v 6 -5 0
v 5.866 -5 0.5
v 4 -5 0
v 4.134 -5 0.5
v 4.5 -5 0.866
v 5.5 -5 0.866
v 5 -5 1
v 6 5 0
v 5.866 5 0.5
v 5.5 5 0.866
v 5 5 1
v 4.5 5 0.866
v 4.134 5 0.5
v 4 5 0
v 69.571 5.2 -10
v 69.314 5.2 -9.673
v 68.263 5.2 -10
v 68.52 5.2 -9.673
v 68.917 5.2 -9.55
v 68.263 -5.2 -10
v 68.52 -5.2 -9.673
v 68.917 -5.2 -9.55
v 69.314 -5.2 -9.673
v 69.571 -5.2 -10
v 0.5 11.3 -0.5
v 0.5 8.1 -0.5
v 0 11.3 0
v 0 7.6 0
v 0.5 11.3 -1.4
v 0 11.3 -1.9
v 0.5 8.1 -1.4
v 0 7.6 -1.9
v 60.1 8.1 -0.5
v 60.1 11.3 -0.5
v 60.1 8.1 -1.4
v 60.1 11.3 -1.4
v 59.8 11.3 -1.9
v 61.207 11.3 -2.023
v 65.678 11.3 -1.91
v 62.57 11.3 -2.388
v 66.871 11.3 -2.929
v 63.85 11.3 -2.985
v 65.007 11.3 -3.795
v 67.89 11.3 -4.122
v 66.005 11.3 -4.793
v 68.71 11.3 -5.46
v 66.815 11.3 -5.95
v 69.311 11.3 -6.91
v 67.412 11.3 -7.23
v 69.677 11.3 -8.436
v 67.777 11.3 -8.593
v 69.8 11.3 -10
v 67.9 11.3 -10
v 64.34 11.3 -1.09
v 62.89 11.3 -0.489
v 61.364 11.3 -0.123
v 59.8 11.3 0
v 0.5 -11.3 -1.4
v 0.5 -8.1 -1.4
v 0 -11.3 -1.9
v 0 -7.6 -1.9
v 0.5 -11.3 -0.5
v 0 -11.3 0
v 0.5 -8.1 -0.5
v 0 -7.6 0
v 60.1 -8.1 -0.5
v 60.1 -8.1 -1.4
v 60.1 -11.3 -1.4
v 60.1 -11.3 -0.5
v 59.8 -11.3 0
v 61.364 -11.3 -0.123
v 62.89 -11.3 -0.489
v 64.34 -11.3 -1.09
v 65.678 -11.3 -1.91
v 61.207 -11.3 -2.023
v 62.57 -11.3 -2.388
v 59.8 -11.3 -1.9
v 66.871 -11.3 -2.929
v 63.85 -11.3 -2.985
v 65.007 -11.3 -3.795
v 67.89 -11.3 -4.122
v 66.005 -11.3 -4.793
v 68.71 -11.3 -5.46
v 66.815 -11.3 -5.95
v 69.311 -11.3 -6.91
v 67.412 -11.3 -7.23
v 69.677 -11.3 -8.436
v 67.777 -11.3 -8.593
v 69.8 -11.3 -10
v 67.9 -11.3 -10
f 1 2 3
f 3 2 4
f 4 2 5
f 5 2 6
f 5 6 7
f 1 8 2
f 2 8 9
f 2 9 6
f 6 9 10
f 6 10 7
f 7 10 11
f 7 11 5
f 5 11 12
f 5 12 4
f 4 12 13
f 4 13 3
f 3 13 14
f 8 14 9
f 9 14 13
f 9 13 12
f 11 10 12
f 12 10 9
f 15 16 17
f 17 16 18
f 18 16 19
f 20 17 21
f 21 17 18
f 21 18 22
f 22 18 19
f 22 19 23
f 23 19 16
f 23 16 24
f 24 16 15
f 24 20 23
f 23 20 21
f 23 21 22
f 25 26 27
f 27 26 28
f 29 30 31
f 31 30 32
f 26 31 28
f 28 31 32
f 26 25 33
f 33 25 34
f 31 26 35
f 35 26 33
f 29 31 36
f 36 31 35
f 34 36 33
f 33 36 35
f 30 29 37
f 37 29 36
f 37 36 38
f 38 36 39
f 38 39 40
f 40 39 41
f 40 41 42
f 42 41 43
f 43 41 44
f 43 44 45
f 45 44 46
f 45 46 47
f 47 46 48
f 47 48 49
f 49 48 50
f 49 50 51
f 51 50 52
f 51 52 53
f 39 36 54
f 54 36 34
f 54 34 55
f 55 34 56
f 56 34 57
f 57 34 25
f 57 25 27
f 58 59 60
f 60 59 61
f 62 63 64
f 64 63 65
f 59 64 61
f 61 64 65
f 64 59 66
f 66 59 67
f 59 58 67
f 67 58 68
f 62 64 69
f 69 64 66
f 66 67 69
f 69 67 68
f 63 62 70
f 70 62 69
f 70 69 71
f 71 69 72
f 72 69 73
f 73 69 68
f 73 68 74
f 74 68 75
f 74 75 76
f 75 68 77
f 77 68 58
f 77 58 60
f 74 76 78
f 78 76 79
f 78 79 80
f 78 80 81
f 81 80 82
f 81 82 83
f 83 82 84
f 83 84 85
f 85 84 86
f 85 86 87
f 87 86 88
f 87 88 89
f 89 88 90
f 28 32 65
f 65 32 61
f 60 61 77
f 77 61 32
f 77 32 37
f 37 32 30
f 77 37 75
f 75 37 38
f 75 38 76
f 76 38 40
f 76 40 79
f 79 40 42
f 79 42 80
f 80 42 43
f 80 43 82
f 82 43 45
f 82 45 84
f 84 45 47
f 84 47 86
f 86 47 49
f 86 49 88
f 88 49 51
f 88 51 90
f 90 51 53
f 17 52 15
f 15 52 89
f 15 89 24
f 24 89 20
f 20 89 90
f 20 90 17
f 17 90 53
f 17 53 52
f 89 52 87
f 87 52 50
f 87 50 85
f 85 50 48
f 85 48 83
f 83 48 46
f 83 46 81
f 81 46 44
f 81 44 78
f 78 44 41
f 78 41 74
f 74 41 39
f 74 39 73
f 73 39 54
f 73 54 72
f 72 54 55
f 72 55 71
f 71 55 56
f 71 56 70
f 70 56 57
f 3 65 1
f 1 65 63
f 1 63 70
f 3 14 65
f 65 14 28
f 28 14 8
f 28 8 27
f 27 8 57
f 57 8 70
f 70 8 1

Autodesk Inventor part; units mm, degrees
ref_plane "YZ Plane" through (0, 0, 0) normal (1, 0, 0) x (0, 1, 0)
ref_plane "XZ Plane" through (0, 0, 0) normal (0, 1, 0) x (-1, 0, 0)
sketch "Sketch1" plane through (0, 0, 0) normal (0, 1, 0) x (-1, 0, 0)
  line L0 (0, 0) -> (-59.8, 0)
  arc A0 (-59.8, 0) -> (-69.8, -10) centre (-59.8, -10) ccw
  line L1 (0, -1.9) -> (-59.8, -1.9)
  arc A1 (-59.8, -1.9) -> (-67.9, -10) centre (-59.8, -10) ccw
  line L2 (0, 0) -> (0, -1.9)
  line L3 (-67.9, -10) -> (-69.8, -10)
  dimension "d4" = 10
  dimension "d5" = 69.8
  dimension "d6" = 1.9
extrude "Extrusion1" add sketch "Sketch1" along normal mid plane 22.6
sketch "Sketch3" plane through (0, 0, 0) normal (1, 0, 0) x (0, 1, 0)
  line L0 (-11.3, -0.5) -> (-8.1, -0.5)
  line L1 (-8.1, -0.5) -> (-8.1, -1.4)
  line L2 (-8.1, -1.4) -> (-11.3, -1.4)
  line L3 (-11.3, -1.4) -> (-11.3, -0.5)
  line L4 (-11.3, 0) -> (-11.3, -1.9) construction
  line L5 (-11.8, -1.9) -> (-7.6, -1.9)
  line L6 (-7.6, -1.9) -> (-7.6, 0)
  line L7 (-7.6, 0) -> (-11.8, 0)
  line L8 (-11.8, 0) -> (-11.8, -1.9)
  point P0 (0, 0)
  point P1 (-11.3, -0.95)
  dimension "d11" = 3.2
  dimension "d12" = 0.9
  dimension "d18" = 0.5
  dimension "d19" = 0.5
  dimension "d20" = 0.5
  dimension "d21" = 0.5
extrude "Extrusion2" cut sketch "Sketch3" along normal blind 60.1 contours L0 L1 L2 L3
sketch "Sketch3 outline for Extrusion3" plane through (0, 0, 0) normal (1, 0, 0) x (0, 1, 0)
  line L0 (-11.8, -1.9) -> (-7.6, -1.9)
  line L1 (-11.8, 0) -> (-11.8, -1.9)
  line L2 (-7.6, 0) -> (-11.8, 0)
  line L3 (-7.6, -1.9) -> (-7.6, 0)
extrude "Extrusion3" cut sketch "Sketch3 outline for Extrusion3" along normal blind 0.5 draft -45
mirror "Mirror1" about plane through (0, 0, 0) normal (0, 1, 0) of "Extrusion2", "Extrusion3"
ref_plane "Work Plane1" through (0, 0, 0) normal (0, -1, 0) x (1, 0, 0)
sketch "Sketch4" plane through (0, 0, 0) normal (0, -1, 0) x (1, 0, 0)
  line L0 (67.9, -10) -> (69.8, -10)
  arc A0 (69.571144, -10) -> (68.263474, -10) centre (68.917309, -10.25) ccw
  point P0 (0, 0)
  dimension "d26" = 0.7
  dimension "d27" = 0.25
extrude "Extrusion4" cut sketch "Sketch4" along normal mid plane 10.4
sketch "Sketch5" plane through (0, 0, 0) normal (0, 1, 0) x (-1, 0, 0)
  arc A0 (-4, 0) -> (-6, 0) centre (-5, 0) ccw
  line L0 (-6, 0) -> (-4, 0)
  line L1 (-59.8, 0) -> (0, 0) construction
  dimension "d30" = 1
  dimension "d31" = 5
extrude "Extrusion5" add sketch "Sketch5" along normal mid plane 10
equation "\"d4\" = fillet_outer_radius"
equation "\"d5\" = -fillet_outer_radius + total_width - 2 * tol"
equation "\"d6\" = thickness - tol"
equation "\"d7\" = door_height - 4 * tol"
equation "\"d11\" = door_rail_height + 2 * tol"
equation "\"d12\" = door_rail_depth + 4 * tol"
equation "\"d18\" = door_rail_depth"
equation "\"d19\" = door_rail_depth"
equation "\"d20\" = door_rail_depth"
equation "\"d21\" = door_rail_depth"
equation "\"d13\" = -2 * fillet_outer_radius + total_width + tol"
equation "\"d22\" = door_rail_depth"
equation "\"d26\" = door_strike_radius + 2 * tol"
equation "\"d28\" = door_strike_height + 4 * tol"
equation "\"d30\" = door_handle_radius"
equation "\"d31\" = door_handle_inset_width"
equation "\"d32\" = door_handle_height"
equation "\"door_handle_inset_width\" = 5"
equation "\"door_handle_height\" = 10"
equation "\"door_handle_radius\" = 1"
equation "\"fillet_outer_radius\" = 10"
equation "\"total_width\" = 80"
equation "\"tol\" = 0.1"
equation "\"thickness\" = 2"
equation "\"door_height\" = 23"
equation "\"door_rail_height\" = 3"
equation "\"door_rail_depth\" = 0.5"
equation "\"door_strike_radius\" = 0.5"
equation "\"door_strike_height\" = 10"
properties part number "DOOR" material "PC/ABS Plastic"
